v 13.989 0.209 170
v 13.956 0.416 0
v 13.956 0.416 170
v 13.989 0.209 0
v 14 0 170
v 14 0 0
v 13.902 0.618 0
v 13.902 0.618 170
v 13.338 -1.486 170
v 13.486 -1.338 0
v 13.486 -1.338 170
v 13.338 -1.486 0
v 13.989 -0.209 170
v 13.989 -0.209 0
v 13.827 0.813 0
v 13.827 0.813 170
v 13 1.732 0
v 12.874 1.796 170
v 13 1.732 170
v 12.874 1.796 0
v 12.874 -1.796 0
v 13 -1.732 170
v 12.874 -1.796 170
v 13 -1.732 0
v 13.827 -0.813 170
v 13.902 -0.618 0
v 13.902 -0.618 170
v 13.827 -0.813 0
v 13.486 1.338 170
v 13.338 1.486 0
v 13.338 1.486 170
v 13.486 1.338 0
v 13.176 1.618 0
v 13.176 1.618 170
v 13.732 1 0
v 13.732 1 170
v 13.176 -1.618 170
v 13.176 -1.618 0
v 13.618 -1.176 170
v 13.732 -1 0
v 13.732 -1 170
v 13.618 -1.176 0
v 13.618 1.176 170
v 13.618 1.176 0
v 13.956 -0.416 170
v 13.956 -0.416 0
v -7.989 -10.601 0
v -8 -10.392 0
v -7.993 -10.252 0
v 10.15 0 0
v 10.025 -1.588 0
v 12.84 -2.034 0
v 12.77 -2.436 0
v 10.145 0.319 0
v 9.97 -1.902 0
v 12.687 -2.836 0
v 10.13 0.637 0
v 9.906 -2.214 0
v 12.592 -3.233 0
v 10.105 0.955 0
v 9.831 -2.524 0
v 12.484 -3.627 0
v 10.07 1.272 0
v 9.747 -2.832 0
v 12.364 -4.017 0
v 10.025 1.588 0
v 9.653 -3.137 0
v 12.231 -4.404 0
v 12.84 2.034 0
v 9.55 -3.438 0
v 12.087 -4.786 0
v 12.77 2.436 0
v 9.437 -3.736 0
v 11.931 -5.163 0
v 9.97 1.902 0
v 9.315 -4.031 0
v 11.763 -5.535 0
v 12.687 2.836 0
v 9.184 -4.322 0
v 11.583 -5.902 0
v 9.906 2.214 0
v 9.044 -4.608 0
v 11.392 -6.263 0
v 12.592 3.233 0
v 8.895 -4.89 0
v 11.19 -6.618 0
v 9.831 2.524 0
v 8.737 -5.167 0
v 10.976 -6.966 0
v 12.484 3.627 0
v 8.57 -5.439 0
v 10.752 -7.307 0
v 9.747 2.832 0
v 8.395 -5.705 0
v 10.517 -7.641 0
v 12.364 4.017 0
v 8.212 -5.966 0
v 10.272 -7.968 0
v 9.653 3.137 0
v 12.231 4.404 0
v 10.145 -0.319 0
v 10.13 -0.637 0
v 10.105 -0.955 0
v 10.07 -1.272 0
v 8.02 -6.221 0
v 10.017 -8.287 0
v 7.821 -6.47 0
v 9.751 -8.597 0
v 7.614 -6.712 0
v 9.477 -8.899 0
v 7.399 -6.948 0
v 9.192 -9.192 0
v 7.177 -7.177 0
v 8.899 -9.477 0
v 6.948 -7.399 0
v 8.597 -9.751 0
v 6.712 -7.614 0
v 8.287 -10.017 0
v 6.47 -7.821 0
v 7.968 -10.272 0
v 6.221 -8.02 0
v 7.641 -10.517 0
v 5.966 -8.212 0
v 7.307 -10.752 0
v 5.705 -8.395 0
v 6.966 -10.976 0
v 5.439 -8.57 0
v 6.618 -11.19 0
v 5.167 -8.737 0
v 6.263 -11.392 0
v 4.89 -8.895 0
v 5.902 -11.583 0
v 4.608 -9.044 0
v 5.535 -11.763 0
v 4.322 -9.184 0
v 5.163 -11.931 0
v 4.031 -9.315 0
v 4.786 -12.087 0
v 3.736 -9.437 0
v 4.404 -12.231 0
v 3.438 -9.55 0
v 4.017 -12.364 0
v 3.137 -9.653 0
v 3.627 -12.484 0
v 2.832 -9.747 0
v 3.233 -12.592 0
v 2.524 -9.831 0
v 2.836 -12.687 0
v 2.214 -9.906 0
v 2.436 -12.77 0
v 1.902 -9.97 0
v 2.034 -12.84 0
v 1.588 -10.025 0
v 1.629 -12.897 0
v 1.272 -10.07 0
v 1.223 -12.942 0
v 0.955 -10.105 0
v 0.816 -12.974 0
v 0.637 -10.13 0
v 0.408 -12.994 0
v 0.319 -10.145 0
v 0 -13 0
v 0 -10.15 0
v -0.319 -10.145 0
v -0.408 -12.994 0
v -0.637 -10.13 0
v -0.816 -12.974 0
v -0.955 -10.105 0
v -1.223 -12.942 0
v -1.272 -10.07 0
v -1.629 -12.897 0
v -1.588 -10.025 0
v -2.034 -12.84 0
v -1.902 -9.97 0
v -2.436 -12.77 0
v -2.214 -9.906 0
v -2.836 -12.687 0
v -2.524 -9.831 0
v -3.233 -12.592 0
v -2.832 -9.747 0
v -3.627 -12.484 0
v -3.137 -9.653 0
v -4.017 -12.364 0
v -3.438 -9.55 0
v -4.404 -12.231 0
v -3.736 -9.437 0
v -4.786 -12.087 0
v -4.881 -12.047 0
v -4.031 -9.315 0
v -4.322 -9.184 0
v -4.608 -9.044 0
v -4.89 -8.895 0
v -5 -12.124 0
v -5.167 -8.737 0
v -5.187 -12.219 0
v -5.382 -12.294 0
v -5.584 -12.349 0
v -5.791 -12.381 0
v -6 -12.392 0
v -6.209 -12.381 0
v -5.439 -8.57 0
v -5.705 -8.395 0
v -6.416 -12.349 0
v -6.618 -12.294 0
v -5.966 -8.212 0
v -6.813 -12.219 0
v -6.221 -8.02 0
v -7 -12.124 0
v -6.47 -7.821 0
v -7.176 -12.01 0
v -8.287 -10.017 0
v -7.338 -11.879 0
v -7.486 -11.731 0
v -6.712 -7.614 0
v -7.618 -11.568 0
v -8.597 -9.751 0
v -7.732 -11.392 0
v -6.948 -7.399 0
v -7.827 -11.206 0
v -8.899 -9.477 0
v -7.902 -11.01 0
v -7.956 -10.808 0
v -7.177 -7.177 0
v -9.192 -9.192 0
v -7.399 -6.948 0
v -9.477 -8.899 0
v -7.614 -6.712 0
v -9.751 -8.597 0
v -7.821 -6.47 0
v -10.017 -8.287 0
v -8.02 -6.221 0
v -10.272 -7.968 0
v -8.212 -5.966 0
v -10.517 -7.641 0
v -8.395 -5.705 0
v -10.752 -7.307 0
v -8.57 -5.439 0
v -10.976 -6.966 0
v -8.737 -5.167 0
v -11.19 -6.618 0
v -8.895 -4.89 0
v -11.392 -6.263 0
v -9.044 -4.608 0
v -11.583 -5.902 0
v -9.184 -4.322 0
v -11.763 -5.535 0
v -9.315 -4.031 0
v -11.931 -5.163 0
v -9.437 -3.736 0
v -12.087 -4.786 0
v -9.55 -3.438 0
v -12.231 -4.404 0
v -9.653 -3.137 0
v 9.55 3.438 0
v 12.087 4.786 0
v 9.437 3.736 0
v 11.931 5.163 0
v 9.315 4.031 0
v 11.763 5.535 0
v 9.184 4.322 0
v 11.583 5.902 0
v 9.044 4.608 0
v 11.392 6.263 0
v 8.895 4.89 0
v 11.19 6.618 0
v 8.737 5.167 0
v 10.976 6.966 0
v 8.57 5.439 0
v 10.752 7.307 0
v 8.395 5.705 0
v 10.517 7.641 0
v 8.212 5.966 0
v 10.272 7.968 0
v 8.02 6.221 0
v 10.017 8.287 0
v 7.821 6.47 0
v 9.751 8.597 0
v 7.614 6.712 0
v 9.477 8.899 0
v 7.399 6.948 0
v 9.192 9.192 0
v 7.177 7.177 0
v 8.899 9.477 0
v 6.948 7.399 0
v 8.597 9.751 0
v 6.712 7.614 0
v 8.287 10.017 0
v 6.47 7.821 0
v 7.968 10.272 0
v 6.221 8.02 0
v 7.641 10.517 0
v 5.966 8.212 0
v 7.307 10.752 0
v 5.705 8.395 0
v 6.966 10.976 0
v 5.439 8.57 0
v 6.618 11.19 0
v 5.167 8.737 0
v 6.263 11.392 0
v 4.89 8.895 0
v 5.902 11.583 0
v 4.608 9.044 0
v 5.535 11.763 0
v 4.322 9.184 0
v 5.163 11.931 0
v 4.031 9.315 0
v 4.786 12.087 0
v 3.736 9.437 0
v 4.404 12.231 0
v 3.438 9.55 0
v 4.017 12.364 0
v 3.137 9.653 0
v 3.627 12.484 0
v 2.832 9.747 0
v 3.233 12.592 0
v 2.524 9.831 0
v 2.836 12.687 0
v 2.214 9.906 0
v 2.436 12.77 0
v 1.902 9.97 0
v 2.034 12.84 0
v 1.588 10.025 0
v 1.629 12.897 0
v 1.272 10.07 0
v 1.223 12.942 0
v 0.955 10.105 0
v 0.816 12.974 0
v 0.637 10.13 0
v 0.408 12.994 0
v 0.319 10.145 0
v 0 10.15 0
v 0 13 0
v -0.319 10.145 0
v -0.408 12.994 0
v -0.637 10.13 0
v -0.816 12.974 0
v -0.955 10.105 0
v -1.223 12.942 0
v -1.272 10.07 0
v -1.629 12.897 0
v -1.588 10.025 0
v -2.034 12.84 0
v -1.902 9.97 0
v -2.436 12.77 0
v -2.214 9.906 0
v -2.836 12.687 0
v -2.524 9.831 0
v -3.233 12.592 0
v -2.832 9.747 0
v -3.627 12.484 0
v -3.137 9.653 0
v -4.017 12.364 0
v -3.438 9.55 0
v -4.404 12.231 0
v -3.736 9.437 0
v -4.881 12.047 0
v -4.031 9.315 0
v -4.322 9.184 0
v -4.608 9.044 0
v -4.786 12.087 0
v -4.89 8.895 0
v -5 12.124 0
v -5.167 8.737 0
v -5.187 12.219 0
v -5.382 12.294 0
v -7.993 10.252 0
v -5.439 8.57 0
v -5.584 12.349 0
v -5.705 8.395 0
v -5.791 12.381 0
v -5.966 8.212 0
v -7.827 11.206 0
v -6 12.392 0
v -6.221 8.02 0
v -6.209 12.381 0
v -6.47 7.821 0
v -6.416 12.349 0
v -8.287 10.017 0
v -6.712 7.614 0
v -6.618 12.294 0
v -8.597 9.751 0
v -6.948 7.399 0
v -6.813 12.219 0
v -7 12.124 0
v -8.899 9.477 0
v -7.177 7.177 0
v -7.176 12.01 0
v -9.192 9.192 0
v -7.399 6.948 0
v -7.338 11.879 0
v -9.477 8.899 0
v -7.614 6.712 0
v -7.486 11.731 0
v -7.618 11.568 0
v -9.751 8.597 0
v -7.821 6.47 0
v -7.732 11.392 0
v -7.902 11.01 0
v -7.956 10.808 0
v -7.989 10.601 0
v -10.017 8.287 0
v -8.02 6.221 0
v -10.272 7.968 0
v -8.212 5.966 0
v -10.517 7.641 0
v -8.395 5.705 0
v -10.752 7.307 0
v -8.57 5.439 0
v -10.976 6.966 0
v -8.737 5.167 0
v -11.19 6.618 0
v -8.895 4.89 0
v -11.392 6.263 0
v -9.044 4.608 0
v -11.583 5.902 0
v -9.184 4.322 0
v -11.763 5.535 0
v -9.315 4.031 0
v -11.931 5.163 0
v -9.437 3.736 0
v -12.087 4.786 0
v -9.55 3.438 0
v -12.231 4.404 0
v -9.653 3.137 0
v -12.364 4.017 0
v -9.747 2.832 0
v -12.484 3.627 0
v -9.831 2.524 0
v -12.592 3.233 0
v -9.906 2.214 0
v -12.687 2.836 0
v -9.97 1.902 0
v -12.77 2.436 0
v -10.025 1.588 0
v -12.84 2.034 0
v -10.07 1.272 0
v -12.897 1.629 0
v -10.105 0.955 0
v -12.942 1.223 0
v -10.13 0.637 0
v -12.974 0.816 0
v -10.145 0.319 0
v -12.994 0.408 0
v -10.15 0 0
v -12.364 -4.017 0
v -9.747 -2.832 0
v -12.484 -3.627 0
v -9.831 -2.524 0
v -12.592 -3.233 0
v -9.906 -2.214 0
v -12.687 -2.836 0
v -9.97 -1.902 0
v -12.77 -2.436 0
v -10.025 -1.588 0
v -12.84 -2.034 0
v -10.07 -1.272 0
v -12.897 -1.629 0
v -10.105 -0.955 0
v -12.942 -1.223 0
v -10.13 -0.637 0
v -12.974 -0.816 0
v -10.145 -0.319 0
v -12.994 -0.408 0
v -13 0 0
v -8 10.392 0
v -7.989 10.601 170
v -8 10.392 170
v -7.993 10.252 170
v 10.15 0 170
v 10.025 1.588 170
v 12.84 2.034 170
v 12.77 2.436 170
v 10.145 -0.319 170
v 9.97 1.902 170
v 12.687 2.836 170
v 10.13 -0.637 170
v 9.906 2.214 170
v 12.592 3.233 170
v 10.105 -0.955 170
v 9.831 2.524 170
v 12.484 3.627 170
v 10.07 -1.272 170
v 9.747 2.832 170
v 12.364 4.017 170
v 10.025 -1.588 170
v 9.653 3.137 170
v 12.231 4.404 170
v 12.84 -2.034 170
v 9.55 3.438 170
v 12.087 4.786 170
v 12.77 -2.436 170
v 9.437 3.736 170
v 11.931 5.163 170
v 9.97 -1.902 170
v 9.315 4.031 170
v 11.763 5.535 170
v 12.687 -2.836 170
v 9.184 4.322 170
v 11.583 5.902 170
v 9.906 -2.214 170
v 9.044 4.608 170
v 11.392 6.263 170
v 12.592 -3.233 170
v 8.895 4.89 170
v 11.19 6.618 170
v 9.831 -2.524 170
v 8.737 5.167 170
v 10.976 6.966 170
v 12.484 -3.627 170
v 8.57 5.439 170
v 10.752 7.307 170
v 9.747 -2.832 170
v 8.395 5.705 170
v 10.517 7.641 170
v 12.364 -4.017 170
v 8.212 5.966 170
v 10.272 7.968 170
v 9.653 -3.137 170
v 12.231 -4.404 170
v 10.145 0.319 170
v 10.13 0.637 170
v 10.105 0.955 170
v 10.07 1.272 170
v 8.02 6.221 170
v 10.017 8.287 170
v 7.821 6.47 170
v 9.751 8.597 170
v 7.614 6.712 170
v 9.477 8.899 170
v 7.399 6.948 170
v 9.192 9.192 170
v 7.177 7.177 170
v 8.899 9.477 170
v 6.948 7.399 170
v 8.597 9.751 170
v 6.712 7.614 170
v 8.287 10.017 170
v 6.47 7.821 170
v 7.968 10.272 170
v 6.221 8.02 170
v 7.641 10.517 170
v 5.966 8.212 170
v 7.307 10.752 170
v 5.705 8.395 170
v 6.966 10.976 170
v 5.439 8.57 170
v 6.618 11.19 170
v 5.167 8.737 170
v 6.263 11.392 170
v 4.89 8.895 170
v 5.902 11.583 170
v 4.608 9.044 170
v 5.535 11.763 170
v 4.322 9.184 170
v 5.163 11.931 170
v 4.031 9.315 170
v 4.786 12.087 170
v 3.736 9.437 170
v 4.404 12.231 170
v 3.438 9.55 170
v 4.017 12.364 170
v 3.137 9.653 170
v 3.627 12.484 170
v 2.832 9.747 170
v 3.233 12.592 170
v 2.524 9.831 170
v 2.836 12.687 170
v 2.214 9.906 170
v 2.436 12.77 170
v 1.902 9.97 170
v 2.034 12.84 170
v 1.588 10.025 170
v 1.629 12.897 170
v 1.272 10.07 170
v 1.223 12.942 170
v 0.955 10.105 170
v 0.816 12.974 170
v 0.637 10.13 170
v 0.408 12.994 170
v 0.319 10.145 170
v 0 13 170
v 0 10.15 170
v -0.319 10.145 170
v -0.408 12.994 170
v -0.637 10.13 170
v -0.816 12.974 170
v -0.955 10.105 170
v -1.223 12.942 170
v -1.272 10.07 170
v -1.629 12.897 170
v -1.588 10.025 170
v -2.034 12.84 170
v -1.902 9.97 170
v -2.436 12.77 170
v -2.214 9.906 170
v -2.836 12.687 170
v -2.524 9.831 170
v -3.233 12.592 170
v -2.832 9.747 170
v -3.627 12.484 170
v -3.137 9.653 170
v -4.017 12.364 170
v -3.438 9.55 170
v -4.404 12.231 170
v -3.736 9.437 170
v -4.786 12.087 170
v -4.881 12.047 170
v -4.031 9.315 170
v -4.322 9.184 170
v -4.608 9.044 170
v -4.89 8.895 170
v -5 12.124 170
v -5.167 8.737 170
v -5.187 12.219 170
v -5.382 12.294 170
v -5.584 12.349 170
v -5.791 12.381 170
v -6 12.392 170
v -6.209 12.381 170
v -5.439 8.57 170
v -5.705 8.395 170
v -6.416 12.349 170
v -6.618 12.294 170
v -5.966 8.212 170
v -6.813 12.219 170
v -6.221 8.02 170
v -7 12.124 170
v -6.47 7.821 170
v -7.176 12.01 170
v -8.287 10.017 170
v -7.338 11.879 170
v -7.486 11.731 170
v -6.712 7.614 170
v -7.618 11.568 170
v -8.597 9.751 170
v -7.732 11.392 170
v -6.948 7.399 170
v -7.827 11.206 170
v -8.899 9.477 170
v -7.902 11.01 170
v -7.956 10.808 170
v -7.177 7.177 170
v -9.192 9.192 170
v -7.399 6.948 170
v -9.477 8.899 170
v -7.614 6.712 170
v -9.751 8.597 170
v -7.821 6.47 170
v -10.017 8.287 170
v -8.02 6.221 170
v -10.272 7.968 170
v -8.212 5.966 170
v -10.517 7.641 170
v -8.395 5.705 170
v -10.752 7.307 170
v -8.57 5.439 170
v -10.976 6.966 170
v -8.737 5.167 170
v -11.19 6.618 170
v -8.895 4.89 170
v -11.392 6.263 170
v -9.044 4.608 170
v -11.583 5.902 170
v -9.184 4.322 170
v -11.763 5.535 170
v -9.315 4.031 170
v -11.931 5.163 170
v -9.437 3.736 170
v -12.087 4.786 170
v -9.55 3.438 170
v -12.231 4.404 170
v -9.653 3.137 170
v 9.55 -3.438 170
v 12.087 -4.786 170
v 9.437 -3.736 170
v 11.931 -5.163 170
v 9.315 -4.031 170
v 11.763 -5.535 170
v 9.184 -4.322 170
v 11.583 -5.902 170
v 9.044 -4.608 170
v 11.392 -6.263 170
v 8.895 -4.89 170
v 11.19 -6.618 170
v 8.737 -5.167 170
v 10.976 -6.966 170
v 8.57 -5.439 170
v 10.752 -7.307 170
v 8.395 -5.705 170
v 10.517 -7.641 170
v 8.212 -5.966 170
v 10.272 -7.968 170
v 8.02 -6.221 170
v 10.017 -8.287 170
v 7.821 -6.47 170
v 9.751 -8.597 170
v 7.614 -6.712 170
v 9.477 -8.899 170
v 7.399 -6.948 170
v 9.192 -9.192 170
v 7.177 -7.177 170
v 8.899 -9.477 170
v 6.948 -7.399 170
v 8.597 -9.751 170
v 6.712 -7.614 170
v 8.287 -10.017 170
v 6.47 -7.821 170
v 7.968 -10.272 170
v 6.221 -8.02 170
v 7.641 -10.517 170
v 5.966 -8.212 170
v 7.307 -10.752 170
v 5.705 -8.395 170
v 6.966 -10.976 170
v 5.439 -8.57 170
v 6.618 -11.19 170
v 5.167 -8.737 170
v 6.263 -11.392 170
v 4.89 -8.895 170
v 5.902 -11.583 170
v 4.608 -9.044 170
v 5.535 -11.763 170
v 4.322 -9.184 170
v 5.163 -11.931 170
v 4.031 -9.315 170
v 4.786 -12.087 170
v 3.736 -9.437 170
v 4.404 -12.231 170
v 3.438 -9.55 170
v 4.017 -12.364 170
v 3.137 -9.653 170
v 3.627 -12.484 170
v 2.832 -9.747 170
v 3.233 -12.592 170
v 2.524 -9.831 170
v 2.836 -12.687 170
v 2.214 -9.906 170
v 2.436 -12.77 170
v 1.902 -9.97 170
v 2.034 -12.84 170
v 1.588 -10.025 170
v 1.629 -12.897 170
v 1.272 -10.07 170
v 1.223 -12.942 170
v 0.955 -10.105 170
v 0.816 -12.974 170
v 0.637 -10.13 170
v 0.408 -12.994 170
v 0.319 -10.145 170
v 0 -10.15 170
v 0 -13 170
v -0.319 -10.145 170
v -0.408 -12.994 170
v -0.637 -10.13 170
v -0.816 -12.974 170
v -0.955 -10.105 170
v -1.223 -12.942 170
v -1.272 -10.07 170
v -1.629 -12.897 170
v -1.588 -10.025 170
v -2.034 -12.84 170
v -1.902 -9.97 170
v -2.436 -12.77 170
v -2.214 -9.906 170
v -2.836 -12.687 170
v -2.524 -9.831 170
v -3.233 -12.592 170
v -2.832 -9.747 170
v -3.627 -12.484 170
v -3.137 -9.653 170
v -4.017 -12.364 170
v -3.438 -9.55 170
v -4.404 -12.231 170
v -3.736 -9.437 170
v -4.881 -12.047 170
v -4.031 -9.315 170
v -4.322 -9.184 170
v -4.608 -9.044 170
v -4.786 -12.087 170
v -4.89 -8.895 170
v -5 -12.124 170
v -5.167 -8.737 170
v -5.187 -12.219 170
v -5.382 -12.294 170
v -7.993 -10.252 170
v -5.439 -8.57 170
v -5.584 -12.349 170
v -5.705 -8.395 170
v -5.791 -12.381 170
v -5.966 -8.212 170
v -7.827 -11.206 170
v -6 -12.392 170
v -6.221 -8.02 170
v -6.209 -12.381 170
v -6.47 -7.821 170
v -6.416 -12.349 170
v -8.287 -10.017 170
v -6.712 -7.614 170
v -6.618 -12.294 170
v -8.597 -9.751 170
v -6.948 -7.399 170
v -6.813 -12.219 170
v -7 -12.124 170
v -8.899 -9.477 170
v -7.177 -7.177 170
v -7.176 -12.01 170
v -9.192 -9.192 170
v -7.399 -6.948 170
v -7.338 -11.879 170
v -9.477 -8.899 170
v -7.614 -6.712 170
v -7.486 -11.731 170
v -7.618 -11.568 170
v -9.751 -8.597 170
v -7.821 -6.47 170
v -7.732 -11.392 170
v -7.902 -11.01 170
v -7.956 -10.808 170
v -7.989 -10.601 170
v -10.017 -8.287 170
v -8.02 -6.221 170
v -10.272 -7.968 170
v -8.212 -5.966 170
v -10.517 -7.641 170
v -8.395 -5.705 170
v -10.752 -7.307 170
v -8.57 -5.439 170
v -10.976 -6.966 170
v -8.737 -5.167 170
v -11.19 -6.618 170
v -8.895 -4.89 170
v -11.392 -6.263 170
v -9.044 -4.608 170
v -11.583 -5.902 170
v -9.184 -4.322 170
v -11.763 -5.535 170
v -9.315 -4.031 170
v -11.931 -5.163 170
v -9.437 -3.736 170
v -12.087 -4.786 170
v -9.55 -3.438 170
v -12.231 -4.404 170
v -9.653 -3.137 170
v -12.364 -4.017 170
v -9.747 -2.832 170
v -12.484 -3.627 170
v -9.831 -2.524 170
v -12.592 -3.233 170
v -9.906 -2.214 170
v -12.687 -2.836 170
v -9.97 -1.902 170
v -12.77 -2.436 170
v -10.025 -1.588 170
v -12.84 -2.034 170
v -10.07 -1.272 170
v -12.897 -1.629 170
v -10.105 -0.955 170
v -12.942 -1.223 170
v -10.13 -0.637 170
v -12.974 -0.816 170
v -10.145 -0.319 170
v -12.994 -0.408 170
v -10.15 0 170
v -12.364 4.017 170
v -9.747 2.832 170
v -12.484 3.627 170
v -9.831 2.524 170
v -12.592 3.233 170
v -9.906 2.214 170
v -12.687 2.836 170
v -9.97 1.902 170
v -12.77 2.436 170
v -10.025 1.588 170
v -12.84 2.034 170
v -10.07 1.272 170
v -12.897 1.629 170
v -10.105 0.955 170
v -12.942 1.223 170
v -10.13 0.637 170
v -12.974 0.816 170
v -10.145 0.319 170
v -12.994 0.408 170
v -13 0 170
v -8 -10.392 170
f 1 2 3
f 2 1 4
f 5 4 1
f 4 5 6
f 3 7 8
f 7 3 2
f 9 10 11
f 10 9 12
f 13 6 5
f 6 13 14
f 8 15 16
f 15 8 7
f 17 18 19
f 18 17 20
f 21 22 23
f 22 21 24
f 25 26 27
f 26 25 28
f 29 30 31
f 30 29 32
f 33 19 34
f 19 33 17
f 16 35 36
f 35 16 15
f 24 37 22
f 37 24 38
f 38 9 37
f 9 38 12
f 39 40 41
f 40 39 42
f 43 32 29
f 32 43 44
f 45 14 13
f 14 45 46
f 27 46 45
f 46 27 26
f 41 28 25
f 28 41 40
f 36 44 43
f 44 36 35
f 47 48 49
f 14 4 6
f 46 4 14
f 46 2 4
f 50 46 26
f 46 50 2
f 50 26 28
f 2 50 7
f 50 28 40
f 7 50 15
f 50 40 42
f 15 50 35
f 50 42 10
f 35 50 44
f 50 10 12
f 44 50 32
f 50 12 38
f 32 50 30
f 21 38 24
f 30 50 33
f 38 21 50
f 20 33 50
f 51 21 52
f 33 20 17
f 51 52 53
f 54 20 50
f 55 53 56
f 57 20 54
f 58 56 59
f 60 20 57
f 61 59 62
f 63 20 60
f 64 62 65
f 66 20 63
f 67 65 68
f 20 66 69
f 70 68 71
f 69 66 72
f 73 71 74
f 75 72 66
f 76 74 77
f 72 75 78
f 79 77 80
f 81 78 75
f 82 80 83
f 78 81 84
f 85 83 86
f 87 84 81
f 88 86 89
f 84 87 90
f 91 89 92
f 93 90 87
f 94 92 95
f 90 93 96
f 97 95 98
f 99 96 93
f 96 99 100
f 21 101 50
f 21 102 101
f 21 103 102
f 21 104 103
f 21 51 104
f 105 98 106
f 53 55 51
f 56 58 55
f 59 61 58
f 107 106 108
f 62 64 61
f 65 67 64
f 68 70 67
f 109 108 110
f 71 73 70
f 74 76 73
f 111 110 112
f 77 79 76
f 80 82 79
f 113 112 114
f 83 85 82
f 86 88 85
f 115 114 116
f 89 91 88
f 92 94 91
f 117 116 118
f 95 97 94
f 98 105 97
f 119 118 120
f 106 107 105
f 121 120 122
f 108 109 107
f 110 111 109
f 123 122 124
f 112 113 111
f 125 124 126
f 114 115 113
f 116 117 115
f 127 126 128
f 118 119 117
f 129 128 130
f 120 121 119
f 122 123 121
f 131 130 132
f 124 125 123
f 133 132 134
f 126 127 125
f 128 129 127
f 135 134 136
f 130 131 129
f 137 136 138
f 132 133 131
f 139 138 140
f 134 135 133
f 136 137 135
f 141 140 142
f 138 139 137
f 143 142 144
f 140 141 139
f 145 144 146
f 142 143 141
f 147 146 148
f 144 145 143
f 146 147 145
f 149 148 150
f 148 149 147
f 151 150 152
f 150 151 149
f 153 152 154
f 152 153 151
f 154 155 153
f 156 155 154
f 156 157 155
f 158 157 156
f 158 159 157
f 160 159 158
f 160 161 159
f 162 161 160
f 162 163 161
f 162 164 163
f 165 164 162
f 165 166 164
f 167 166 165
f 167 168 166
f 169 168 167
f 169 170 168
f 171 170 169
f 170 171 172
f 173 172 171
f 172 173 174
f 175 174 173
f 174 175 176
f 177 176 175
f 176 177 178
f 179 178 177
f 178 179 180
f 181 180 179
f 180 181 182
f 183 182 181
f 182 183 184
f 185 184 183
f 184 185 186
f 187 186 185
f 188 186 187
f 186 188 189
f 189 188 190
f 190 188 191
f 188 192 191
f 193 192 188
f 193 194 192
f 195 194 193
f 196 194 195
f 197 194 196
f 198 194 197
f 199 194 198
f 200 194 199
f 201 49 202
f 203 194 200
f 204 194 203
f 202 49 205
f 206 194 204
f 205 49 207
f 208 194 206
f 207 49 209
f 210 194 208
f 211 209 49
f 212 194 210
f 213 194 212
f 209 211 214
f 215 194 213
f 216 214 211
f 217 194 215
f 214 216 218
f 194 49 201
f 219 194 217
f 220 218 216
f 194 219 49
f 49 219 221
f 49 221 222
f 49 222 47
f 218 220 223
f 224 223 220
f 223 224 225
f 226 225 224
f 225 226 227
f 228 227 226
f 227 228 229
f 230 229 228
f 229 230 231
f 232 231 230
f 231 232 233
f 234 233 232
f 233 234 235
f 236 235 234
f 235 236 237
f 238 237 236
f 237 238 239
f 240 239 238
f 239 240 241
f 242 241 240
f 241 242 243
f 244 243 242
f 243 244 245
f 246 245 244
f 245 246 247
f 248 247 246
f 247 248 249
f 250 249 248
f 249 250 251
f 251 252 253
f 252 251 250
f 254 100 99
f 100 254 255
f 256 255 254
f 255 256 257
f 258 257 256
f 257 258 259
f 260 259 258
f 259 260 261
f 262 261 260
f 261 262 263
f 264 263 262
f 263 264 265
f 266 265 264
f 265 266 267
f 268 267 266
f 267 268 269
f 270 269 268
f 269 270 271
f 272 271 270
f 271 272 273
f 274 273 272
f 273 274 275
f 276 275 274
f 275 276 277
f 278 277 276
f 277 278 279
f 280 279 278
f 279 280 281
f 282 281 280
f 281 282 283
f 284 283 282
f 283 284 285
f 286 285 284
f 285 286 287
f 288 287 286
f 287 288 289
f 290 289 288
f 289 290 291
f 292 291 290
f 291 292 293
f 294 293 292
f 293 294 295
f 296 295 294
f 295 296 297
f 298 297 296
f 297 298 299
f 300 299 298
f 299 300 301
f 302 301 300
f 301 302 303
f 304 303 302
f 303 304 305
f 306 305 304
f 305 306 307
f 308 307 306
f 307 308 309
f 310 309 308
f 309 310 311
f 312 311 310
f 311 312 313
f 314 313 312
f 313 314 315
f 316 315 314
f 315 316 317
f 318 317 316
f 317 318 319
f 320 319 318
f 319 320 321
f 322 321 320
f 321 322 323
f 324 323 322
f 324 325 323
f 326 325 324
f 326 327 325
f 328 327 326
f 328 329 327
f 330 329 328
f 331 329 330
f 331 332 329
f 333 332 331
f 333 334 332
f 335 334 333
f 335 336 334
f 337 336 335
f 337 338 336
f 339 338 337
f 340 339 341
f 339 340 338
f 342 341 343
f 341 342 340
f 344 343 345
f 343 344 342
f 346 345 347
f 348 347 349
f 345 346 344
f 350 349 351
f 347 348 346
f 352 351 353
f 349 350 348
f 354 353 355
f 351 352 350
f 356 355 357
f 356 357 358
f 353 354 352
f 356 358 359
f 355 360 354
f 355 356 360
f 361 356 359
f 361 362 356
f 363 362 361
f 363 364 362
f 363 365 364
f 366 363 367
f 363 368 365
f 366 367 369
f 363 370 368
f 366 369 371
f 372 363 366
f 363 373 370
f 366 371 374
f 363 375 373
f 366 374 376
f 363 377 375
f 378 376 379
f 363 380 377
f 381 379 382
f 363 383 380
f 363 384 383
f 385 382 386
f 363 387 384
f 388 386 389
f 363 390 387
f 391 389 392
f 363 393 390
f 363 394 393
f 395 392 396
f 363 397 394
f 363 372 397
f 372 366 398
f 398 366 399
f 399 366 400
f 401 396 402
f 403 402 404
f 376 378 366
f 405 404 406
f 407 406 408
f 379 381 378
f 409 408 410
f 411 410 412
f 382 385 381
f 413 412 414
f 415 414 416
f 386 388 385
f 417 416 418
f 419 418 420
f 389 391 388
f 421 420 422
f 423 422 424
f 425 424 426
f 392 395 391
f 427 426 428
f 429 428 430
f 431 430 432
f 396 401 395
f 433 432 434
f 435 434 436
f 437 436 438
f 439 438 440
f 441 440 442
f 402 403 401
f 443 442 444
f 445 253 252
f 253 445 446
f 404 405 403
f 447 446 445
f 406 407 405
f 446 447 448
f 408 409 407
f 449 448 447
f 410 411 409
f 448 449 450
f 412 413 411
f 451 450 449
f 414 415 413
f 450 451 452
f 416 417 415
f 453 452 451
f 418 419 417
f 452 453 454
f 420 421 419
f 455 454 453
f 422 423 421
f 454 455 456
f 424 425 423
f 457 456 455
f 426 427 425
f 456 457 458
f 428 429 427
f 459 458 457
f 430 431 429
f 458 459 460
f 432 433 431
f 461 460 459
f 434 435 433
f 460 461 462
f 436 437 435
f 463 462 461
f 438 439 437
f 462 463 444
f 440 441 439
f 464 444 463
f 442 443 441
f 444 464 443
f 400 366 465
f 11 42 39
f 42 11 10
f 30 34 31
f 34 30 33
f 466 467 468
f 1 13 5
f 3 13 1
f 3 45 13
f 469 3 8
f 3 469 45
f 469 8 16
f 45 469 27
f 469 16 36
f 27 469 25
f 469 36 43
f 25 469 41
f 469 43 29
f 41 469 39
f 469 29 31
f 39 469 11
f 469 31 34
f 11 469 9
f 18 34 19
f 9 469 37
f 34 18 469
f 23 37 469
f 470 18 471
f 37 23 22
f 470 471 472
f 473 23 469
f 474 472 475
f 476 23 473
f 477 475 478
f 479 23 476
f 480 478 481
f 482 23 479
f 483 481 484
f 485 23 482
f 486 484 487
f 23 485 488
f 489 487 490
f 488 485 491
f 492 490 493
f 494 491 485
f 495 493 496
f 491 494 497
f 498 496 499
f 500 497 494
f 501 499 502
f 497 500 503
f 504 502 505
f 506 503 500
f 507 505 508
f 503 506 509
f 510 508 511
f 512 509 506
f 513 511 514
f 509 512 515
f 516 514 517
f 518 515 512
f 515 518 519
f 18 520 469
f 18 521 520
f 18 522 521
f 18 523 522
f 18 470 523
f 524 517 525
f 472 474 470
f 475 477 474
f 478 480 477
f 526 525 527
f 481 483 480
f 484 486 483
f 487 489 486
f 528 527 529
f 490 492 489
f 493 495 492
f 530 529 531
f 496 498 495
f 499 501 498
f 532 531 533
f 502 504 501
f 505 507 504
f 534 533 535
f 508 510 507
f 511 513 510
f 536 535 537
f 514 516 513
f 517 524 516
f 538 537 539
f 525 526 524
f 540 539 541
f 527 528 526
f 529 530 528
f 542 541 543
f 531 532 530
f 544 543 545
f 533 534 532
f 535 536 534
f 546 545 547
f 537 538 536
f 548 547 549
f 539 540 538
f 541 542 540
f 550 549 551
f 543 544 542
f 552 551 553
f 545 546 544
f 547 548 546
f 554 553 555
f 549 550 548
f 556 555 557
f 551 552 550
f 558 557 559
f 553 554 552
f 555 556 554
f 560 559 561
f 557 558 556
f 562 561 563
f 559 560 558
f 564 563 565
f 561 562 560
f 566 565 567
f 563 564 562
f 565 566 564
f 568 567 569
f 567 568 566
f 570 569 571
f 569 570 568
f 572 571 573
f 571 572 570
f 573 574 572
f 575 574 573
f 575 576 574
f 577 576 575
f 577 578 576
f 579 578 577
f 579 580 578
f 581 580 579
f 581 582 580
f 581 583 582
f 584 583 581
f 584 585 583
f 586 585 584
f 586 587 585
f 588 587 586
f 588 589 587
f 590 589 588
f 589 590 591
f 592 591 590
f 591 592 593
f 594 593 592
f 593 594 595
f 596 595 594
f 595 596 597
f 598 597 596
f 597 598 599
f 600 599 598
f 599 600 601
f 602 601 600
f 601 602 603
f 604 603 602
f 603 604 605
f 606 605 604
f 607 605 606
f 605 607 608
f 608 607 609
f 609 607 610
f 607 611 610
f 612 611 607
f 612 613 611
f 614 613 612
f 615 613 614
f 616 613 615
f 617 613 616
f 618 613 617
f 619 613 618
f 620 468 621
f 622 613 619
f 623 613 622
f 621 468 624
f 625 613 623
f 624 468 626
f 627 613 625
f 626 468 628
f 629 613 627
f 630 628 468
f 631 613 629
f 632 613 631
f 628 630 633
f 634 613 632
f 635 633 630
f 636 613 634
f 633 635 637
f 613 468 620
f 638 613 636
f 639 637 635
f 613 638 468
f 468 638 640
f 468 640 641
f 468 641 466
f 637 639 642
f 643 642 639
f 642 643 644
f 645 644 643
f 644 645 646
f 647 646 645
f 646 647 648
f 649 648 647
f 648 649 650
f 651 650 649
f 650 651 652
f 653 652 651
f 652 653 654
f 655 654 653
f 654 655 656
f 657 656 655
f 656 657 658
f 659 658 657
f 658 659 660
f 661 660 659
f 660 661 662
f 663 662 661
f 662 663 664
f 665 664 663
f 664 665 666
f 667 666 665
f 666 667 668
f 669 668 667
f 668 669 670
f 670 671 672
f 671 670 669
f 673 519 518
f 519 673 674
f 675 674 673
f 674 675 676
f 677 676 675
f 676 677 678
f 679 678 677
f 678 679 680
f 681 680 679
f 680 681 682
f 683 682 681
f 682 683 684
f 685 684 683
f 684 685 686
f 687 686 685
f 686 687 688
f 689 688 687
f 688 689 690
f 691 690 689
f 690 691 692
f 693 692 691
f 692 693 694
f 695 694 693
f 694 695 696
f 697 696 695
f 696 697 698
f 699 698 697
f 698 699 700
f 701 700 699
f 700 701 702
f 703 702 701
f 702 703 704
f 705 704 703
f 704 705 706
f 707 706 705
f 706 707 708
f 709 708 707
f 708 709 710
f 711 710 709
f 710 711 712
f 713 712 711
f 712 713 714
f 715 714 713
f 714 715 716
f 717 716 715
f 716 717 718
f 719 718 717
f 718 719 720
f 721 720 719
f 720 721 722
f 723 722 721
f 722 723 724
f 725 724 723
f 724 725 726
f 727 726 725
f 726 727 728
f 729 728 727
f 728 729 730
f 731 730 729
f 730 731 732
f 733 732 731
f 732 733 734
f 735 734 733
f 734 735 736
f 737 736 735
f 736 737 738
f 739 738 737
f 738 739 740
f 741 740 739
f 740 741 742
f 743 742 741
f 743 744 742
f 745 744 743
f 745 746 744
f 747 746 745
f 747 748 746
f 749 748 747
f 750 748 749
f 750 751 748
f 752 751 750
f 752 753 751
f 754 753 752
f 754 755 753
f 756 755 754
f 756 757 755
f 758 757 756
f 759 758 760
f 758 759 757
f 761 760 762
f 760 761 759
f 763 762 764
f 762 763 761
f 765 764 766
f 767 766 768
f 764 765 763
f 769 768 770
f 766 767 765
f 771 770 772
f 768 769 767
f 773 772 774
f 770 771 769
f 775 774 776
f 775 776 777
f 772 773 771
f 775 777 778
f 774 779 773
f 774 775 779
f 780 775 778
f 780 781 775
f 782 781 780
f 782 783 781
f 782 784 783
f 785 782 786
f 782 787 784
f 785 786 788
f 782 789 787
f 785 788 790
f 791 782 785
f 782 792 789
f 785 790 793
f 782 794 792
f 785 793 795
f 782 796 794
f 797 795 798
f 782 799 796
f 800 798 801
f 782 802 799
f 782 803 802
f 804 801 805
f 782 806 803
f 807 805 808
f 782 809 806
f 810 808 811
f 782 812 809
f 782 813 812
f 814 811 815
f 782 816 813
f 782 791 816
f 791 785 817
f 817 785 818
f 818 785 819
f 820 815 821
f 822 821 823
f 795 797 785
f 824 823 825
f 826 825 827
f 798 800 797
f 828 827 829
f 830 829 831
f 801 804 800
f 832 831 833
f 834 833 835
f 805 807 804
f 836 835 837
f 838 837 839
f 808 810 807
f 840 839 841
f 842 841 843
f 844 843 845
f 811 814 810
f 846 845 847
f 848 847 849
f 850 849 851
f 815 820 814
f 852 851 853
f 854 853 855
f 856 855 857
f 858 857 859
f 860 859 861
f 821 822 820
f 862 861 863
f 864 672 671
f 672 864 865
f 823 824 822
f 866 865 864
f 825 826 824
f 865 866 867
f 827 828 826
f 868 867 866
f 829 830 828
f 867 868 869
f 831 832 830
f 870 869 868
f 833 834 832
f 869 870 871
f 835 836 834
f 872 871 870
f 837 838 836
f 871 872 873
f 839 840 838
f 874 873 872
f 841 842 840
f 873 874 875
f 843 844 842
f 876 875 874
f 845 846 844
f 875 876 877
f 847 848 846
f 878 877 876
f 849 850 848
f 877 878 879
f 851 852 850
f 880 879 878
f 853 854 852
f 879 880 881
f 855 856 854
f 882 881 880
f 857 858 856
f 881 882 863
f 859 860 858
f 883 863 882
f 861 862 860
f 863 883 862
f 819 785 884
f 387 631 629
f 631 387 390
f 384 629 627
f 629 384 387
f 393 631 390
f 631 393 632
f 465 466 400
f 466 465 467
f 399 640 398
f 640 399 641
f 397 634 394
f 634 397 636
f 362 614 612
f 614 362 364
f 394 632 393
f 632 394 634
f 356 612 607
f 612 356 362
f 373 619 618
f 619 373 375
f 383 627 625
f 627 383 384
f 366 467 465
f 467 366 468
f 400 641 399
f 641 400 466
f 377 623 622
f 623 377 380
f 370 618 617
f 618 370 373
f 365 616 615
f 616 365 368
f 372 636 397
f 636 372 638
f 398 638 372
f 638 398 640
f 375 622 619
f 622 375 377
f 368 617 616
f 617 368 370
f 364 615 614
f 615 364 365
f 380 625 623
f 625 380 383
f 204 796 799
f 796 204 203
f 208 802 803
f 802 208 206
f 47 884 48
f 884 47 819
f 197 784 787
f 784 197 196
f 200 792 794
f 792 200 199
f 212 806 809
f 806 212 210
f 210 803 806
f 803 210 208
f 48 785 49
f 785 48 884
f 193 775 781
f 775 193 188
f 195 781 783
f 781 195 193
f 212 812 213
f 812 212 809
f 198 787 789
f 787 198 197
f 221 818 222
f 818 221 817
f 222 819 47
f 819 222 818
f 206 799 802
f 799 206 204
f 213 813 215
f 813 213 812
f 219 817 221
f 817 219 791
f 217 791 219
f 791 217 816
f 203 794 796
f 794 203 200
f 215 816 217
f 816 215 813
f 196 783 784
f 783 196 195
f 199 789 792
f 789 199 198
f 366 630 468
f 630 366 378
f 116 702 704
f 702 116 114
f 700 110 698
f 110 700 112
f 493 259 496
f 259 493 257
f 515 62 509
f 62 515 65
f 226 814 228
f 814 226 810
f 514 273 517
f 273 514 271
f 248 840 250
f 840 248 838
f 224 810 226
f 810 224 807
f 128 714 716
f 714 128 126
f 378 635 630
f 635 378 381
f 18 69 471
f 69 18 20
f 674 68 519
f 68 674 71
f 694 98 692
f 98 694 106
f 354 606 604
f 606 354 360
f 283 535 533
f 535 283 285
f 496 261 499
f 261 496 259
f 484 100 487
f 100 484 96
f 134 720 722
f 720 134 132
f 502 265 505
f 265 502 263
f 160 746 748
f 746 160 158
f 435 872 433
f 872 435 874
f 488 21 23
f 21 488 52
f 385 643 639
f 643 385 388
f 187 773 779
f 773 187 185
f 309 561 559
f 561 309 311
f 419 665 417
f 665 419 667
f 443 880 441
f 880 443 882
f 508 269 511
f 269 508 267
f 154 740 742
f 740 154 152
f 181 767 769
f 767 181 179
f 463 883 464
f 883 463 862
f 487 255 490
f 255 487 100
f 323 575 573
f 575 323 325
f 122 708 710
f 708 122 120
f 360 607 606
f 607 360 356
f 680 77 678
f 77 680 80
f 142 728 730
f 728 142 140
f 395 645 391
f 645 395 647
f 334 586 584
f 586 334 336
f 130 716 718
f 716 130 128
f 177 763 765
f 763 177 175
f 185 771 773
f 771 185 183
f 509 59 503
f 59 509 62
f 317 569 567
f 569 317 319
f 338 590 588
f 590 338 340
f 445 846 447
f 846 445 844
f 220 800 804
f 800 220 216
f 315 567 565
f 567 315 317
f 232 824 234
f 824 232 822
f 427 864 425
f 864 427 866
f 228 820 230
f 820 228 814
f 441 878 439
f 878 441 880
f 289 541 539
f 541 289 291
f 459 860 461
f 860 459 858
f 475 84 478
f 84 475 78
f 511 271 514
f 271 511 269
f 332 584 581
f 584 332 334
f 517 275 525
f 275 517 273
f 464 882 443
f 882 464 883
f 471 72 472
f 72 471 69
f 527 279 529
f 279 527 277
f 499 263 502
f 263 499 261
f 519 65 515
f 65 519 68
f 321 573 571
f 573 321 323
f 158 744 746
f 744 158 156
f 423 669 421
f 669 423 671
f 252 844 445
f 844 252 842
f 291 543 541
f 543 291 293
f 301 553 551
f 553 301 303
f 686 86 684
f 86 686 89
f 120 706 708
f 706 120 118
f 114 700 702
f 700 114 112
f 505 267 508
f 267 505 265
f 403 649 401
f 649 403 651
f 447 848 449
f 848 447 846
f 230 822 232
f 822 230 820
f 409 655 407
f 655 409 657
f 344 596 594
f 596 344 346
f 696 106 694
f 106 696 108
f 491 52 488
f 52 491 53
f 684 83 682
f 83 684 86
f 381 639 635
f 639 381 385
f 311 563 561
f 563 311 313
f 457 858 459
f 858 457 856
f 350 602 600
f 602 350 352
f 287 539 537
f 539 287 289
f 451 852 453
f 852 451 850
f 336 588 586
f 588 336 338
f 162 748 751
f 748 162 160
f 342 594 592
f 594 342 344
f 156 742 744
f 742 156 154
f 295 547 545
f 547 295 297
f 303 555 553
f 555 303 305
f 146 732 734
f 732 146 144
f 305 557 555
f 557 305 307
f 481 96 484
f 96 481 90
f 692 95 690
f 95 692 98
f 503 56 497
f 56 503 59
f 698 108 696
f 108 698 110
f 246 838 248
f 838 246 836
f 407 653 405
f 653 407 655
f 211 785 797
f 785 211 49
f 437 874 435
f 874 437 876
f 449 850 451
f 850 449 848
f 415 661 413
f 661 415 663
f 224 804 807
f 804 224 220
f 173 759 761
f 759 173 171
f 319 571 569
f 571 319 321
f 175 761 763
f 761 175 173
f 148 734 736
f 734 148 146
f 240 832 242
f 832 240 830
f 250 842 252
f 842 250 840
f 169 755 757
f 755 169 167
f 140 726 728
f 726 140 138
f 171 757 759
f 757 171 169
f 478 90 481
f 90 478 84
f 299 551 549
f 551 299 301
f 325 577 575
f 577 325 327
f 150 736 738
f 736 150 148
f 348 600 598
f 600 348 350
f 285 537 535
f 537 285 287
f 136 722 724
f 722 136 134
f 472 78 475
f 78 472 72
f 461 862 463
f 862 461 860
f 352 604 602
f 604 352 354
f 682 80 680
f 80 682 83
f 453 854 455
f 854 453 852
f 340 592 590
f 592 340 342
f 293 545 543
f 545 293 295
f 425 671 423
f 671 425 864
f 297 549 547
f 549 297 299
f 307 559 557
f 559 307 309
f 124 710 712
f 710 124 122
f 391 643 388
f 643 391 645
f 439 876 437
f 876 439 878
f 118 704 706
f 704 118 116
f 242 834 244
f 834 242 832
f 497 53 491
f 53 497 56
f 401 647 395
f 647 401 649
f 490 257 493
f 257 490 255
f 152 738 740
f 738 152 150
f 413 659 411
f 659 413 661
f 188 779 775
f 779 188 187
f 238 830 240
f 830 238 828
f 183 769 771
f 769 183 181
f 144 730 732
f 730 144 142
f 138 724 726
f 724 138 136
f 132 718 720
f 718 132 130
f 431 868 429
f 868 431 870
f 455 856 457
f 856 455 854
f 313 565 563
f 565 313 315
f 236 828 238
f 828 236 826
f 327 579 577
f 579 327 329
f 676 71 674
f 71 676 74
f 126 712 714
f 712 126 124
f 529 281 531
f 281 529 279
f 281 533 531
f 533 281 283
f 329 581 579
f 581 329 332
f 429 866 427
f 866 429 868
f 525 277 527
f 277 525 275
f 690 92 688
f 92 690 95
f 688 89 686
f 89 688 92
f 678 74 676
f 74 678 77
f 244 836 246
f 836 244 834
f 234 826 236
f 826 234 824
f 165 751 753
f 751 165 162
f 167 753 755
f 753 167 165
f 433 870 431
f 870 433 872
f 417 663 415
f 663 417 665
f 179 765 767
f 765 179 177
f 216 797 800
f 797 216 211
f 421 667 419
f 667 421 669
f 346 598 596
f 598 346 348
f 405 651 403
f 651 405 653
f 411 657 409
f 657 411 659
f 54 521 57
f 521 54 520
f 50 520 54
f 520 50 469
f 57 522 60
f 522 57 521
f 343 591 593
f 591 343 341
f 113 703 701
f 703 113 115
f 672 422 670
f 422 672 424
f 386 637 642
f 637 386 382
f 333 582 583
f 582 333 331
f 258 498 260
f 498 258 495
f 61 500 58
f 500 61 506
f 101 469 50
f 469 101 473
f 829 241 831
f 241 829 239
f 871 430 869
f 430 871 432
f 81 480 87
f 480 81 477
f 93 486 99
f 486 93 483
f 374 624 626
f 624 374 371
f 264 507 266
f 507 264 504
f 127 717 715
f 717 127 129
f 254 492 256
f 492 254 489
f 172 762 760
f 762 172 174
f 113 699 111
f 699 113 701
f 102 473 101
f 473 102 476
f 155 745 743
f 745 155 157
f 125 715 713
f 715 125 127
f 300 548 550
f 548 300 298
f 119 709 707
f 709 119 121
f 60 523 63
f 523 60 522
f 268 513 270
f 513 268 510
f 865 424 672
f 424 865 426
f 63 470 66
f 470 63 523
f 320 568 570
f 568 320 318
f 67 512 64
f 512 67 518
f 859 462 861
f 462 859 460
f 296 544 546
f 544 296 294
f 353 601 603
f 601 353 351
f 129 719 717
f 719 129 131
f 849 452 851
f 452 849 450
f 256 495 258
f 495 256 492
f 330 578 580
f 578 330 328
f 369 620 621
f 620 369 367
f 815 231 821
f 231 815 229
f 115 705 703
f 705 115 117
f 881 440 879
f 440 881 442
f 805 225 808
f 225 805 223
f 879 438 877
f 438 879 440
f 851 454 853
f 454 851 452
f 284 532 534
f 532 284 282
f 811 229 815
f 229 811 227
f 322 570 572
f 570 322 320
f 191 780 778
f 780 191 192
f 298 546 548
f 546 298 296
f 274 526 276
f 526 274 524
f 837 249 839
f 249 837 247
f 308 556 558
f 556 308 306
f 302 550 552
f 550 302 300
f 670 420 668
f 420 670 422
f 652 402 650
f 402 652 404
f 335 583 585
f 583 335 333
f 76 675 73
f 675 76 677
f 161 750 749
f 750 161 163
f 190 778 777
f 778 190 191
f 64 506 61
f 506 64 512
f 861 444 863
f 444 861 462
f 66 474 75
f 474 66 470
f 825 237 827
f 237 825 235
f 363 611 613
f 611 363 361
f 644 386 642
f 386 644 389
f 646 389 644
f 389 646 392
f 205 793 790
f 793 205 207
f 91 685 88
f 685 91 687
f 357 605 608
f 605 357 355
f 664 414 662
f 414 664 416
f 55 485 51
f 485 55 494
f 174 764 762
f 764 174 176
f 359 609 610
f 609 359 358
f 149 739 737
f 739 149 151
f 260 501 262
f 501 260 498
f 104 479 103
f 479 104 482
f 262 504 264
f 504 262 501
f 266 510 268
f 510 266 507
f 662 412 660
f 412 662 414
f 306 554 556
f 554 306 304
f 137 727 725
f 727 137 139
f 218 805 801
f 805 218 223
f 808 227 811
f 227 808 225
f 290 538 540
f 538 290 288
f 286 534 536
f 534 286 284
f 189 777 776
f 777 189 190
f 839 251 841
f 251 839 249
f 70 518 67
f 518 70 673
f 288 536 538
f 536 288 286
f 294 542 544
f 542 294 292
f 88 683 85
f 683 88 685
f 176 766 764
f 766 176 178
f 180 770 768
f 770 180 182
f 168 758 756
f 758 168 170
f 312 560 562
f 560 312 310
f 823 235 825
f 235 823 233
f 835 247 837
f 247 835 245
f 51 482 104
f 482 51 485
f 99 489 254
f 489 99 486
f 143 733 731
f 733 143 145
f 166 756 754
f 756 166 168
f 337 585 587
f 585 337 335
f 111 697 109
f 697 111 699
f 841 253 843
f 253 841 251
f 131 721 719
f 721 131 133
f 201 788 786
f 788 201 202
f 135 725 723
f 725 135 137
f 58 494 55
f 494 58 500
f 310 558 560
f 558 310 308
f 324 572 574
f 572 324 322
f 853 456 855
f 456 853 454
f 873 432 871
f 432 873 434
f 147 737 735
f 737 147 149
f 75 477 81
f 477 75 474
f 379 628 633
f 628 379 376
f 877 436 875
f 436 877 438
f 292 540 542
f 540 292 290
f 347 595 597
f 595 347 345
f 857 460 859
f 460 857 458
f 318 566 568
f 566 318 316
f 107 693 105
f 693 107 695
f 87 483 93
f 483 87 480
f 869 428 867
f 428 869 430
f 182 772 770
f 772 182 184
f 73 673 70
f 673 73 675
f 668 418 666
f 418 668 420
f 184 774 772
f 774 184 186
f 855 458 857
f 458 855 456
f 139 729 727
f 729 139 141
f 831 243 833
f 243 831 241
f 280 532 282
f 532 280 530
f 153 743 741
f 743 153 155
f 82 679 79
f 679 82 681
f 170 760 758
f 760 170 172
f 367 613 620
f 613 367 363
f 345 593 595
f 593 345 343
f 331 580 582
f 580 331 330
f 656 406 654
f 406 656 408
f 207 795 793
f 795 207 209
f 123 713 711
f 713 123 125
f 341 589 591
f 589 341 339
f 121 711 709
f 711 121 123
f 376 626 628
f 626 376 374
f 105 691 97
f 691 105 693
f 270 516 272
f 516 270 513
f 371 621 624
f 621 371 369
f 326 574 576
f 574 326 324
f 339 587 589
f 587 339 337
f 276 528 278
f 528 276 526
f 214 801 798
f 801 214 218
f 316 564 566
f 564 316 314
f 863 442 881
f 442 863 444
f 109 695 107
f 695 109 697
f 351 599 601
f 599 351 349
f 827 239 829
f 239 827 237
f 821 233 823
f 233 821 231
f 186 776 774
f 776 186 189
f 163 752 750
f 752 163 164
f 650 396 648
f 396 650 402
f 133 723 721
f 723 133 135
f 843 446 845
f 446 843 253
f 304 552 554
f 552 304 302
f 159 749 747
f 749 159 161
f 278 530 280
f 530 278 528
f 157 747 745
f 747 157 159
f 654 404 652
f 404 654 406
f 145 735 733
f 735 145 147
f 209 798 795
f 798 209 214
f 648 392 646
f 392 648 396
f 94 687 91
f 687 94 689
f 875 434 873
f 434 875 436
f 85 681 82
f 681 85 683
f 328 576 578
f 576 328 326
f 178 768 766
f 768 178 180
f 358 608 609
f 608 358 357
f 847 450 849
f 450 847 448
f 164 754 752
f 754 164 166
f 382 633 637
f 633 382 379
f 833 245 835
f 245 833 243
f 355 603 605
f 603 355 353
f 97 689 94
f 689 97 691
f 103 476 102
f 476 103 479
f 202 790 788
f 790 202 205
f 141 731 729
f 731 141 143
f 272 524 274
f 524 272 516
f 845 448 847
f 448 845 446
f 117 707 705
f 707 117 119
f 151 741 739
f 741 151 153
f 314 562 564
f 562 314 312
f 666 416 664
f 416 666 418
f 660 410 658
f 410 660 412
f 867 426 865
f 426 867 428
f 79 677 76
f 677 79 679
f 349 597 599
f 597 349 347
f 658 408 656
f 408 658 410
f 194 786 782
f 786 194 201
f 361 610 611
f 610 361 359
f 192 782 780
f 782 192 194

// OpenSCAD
// --- 3Dプリント用 17cm音響管 ---

// [管の基本寸法]
tube_length = 170.0;     
tube_outer_dia = 26.0;   

// [内径と3Dプリント用補正]
base_inner_dia = 20.0;   
hole_compensation = 0.3; 
actual_inner_dia = base_inner_dia + hole_compensation;

rib_count = 3;         // 最低限の揺れ防止を担保する3本（三脚の原理）
rib_dia = 4.0;         // リブの太さ（丸み）
rib_protrusion = 1.0;  // 表面からの出っ張り量

$fn = 200; 

module subtle_rib_tube() {
    difference() {
        union() {
            // 1. 外側の円柱
            cylinder(h = tube_length, d = tube_outer_dia);
            
            // 丸リブ（3本）
            for (i = [0 : rib_count - 1]) {
                rotate([0, 0, i * (360 / rib_count)])
                    // 管の中心側にリブを押し込み、1mmだけ頭を出す計算式
                    translate([(tube_outer_dia / 2) - (rib_dia / 2) + rib_protrusion, 0, 0])
                        cylinder(h = tube_length, d = rib_dia, $fn = 60);
            }
        }
        
        // 2. 内側のくり抜き（貫通して真っ直ぐな管）
        translate([0, 0, -1])
            cylinder(h = tube_length + 2, d = actual_inner_dia);
    }
}

// 煙突のように立ててプリント
subtle_rib_tube();
